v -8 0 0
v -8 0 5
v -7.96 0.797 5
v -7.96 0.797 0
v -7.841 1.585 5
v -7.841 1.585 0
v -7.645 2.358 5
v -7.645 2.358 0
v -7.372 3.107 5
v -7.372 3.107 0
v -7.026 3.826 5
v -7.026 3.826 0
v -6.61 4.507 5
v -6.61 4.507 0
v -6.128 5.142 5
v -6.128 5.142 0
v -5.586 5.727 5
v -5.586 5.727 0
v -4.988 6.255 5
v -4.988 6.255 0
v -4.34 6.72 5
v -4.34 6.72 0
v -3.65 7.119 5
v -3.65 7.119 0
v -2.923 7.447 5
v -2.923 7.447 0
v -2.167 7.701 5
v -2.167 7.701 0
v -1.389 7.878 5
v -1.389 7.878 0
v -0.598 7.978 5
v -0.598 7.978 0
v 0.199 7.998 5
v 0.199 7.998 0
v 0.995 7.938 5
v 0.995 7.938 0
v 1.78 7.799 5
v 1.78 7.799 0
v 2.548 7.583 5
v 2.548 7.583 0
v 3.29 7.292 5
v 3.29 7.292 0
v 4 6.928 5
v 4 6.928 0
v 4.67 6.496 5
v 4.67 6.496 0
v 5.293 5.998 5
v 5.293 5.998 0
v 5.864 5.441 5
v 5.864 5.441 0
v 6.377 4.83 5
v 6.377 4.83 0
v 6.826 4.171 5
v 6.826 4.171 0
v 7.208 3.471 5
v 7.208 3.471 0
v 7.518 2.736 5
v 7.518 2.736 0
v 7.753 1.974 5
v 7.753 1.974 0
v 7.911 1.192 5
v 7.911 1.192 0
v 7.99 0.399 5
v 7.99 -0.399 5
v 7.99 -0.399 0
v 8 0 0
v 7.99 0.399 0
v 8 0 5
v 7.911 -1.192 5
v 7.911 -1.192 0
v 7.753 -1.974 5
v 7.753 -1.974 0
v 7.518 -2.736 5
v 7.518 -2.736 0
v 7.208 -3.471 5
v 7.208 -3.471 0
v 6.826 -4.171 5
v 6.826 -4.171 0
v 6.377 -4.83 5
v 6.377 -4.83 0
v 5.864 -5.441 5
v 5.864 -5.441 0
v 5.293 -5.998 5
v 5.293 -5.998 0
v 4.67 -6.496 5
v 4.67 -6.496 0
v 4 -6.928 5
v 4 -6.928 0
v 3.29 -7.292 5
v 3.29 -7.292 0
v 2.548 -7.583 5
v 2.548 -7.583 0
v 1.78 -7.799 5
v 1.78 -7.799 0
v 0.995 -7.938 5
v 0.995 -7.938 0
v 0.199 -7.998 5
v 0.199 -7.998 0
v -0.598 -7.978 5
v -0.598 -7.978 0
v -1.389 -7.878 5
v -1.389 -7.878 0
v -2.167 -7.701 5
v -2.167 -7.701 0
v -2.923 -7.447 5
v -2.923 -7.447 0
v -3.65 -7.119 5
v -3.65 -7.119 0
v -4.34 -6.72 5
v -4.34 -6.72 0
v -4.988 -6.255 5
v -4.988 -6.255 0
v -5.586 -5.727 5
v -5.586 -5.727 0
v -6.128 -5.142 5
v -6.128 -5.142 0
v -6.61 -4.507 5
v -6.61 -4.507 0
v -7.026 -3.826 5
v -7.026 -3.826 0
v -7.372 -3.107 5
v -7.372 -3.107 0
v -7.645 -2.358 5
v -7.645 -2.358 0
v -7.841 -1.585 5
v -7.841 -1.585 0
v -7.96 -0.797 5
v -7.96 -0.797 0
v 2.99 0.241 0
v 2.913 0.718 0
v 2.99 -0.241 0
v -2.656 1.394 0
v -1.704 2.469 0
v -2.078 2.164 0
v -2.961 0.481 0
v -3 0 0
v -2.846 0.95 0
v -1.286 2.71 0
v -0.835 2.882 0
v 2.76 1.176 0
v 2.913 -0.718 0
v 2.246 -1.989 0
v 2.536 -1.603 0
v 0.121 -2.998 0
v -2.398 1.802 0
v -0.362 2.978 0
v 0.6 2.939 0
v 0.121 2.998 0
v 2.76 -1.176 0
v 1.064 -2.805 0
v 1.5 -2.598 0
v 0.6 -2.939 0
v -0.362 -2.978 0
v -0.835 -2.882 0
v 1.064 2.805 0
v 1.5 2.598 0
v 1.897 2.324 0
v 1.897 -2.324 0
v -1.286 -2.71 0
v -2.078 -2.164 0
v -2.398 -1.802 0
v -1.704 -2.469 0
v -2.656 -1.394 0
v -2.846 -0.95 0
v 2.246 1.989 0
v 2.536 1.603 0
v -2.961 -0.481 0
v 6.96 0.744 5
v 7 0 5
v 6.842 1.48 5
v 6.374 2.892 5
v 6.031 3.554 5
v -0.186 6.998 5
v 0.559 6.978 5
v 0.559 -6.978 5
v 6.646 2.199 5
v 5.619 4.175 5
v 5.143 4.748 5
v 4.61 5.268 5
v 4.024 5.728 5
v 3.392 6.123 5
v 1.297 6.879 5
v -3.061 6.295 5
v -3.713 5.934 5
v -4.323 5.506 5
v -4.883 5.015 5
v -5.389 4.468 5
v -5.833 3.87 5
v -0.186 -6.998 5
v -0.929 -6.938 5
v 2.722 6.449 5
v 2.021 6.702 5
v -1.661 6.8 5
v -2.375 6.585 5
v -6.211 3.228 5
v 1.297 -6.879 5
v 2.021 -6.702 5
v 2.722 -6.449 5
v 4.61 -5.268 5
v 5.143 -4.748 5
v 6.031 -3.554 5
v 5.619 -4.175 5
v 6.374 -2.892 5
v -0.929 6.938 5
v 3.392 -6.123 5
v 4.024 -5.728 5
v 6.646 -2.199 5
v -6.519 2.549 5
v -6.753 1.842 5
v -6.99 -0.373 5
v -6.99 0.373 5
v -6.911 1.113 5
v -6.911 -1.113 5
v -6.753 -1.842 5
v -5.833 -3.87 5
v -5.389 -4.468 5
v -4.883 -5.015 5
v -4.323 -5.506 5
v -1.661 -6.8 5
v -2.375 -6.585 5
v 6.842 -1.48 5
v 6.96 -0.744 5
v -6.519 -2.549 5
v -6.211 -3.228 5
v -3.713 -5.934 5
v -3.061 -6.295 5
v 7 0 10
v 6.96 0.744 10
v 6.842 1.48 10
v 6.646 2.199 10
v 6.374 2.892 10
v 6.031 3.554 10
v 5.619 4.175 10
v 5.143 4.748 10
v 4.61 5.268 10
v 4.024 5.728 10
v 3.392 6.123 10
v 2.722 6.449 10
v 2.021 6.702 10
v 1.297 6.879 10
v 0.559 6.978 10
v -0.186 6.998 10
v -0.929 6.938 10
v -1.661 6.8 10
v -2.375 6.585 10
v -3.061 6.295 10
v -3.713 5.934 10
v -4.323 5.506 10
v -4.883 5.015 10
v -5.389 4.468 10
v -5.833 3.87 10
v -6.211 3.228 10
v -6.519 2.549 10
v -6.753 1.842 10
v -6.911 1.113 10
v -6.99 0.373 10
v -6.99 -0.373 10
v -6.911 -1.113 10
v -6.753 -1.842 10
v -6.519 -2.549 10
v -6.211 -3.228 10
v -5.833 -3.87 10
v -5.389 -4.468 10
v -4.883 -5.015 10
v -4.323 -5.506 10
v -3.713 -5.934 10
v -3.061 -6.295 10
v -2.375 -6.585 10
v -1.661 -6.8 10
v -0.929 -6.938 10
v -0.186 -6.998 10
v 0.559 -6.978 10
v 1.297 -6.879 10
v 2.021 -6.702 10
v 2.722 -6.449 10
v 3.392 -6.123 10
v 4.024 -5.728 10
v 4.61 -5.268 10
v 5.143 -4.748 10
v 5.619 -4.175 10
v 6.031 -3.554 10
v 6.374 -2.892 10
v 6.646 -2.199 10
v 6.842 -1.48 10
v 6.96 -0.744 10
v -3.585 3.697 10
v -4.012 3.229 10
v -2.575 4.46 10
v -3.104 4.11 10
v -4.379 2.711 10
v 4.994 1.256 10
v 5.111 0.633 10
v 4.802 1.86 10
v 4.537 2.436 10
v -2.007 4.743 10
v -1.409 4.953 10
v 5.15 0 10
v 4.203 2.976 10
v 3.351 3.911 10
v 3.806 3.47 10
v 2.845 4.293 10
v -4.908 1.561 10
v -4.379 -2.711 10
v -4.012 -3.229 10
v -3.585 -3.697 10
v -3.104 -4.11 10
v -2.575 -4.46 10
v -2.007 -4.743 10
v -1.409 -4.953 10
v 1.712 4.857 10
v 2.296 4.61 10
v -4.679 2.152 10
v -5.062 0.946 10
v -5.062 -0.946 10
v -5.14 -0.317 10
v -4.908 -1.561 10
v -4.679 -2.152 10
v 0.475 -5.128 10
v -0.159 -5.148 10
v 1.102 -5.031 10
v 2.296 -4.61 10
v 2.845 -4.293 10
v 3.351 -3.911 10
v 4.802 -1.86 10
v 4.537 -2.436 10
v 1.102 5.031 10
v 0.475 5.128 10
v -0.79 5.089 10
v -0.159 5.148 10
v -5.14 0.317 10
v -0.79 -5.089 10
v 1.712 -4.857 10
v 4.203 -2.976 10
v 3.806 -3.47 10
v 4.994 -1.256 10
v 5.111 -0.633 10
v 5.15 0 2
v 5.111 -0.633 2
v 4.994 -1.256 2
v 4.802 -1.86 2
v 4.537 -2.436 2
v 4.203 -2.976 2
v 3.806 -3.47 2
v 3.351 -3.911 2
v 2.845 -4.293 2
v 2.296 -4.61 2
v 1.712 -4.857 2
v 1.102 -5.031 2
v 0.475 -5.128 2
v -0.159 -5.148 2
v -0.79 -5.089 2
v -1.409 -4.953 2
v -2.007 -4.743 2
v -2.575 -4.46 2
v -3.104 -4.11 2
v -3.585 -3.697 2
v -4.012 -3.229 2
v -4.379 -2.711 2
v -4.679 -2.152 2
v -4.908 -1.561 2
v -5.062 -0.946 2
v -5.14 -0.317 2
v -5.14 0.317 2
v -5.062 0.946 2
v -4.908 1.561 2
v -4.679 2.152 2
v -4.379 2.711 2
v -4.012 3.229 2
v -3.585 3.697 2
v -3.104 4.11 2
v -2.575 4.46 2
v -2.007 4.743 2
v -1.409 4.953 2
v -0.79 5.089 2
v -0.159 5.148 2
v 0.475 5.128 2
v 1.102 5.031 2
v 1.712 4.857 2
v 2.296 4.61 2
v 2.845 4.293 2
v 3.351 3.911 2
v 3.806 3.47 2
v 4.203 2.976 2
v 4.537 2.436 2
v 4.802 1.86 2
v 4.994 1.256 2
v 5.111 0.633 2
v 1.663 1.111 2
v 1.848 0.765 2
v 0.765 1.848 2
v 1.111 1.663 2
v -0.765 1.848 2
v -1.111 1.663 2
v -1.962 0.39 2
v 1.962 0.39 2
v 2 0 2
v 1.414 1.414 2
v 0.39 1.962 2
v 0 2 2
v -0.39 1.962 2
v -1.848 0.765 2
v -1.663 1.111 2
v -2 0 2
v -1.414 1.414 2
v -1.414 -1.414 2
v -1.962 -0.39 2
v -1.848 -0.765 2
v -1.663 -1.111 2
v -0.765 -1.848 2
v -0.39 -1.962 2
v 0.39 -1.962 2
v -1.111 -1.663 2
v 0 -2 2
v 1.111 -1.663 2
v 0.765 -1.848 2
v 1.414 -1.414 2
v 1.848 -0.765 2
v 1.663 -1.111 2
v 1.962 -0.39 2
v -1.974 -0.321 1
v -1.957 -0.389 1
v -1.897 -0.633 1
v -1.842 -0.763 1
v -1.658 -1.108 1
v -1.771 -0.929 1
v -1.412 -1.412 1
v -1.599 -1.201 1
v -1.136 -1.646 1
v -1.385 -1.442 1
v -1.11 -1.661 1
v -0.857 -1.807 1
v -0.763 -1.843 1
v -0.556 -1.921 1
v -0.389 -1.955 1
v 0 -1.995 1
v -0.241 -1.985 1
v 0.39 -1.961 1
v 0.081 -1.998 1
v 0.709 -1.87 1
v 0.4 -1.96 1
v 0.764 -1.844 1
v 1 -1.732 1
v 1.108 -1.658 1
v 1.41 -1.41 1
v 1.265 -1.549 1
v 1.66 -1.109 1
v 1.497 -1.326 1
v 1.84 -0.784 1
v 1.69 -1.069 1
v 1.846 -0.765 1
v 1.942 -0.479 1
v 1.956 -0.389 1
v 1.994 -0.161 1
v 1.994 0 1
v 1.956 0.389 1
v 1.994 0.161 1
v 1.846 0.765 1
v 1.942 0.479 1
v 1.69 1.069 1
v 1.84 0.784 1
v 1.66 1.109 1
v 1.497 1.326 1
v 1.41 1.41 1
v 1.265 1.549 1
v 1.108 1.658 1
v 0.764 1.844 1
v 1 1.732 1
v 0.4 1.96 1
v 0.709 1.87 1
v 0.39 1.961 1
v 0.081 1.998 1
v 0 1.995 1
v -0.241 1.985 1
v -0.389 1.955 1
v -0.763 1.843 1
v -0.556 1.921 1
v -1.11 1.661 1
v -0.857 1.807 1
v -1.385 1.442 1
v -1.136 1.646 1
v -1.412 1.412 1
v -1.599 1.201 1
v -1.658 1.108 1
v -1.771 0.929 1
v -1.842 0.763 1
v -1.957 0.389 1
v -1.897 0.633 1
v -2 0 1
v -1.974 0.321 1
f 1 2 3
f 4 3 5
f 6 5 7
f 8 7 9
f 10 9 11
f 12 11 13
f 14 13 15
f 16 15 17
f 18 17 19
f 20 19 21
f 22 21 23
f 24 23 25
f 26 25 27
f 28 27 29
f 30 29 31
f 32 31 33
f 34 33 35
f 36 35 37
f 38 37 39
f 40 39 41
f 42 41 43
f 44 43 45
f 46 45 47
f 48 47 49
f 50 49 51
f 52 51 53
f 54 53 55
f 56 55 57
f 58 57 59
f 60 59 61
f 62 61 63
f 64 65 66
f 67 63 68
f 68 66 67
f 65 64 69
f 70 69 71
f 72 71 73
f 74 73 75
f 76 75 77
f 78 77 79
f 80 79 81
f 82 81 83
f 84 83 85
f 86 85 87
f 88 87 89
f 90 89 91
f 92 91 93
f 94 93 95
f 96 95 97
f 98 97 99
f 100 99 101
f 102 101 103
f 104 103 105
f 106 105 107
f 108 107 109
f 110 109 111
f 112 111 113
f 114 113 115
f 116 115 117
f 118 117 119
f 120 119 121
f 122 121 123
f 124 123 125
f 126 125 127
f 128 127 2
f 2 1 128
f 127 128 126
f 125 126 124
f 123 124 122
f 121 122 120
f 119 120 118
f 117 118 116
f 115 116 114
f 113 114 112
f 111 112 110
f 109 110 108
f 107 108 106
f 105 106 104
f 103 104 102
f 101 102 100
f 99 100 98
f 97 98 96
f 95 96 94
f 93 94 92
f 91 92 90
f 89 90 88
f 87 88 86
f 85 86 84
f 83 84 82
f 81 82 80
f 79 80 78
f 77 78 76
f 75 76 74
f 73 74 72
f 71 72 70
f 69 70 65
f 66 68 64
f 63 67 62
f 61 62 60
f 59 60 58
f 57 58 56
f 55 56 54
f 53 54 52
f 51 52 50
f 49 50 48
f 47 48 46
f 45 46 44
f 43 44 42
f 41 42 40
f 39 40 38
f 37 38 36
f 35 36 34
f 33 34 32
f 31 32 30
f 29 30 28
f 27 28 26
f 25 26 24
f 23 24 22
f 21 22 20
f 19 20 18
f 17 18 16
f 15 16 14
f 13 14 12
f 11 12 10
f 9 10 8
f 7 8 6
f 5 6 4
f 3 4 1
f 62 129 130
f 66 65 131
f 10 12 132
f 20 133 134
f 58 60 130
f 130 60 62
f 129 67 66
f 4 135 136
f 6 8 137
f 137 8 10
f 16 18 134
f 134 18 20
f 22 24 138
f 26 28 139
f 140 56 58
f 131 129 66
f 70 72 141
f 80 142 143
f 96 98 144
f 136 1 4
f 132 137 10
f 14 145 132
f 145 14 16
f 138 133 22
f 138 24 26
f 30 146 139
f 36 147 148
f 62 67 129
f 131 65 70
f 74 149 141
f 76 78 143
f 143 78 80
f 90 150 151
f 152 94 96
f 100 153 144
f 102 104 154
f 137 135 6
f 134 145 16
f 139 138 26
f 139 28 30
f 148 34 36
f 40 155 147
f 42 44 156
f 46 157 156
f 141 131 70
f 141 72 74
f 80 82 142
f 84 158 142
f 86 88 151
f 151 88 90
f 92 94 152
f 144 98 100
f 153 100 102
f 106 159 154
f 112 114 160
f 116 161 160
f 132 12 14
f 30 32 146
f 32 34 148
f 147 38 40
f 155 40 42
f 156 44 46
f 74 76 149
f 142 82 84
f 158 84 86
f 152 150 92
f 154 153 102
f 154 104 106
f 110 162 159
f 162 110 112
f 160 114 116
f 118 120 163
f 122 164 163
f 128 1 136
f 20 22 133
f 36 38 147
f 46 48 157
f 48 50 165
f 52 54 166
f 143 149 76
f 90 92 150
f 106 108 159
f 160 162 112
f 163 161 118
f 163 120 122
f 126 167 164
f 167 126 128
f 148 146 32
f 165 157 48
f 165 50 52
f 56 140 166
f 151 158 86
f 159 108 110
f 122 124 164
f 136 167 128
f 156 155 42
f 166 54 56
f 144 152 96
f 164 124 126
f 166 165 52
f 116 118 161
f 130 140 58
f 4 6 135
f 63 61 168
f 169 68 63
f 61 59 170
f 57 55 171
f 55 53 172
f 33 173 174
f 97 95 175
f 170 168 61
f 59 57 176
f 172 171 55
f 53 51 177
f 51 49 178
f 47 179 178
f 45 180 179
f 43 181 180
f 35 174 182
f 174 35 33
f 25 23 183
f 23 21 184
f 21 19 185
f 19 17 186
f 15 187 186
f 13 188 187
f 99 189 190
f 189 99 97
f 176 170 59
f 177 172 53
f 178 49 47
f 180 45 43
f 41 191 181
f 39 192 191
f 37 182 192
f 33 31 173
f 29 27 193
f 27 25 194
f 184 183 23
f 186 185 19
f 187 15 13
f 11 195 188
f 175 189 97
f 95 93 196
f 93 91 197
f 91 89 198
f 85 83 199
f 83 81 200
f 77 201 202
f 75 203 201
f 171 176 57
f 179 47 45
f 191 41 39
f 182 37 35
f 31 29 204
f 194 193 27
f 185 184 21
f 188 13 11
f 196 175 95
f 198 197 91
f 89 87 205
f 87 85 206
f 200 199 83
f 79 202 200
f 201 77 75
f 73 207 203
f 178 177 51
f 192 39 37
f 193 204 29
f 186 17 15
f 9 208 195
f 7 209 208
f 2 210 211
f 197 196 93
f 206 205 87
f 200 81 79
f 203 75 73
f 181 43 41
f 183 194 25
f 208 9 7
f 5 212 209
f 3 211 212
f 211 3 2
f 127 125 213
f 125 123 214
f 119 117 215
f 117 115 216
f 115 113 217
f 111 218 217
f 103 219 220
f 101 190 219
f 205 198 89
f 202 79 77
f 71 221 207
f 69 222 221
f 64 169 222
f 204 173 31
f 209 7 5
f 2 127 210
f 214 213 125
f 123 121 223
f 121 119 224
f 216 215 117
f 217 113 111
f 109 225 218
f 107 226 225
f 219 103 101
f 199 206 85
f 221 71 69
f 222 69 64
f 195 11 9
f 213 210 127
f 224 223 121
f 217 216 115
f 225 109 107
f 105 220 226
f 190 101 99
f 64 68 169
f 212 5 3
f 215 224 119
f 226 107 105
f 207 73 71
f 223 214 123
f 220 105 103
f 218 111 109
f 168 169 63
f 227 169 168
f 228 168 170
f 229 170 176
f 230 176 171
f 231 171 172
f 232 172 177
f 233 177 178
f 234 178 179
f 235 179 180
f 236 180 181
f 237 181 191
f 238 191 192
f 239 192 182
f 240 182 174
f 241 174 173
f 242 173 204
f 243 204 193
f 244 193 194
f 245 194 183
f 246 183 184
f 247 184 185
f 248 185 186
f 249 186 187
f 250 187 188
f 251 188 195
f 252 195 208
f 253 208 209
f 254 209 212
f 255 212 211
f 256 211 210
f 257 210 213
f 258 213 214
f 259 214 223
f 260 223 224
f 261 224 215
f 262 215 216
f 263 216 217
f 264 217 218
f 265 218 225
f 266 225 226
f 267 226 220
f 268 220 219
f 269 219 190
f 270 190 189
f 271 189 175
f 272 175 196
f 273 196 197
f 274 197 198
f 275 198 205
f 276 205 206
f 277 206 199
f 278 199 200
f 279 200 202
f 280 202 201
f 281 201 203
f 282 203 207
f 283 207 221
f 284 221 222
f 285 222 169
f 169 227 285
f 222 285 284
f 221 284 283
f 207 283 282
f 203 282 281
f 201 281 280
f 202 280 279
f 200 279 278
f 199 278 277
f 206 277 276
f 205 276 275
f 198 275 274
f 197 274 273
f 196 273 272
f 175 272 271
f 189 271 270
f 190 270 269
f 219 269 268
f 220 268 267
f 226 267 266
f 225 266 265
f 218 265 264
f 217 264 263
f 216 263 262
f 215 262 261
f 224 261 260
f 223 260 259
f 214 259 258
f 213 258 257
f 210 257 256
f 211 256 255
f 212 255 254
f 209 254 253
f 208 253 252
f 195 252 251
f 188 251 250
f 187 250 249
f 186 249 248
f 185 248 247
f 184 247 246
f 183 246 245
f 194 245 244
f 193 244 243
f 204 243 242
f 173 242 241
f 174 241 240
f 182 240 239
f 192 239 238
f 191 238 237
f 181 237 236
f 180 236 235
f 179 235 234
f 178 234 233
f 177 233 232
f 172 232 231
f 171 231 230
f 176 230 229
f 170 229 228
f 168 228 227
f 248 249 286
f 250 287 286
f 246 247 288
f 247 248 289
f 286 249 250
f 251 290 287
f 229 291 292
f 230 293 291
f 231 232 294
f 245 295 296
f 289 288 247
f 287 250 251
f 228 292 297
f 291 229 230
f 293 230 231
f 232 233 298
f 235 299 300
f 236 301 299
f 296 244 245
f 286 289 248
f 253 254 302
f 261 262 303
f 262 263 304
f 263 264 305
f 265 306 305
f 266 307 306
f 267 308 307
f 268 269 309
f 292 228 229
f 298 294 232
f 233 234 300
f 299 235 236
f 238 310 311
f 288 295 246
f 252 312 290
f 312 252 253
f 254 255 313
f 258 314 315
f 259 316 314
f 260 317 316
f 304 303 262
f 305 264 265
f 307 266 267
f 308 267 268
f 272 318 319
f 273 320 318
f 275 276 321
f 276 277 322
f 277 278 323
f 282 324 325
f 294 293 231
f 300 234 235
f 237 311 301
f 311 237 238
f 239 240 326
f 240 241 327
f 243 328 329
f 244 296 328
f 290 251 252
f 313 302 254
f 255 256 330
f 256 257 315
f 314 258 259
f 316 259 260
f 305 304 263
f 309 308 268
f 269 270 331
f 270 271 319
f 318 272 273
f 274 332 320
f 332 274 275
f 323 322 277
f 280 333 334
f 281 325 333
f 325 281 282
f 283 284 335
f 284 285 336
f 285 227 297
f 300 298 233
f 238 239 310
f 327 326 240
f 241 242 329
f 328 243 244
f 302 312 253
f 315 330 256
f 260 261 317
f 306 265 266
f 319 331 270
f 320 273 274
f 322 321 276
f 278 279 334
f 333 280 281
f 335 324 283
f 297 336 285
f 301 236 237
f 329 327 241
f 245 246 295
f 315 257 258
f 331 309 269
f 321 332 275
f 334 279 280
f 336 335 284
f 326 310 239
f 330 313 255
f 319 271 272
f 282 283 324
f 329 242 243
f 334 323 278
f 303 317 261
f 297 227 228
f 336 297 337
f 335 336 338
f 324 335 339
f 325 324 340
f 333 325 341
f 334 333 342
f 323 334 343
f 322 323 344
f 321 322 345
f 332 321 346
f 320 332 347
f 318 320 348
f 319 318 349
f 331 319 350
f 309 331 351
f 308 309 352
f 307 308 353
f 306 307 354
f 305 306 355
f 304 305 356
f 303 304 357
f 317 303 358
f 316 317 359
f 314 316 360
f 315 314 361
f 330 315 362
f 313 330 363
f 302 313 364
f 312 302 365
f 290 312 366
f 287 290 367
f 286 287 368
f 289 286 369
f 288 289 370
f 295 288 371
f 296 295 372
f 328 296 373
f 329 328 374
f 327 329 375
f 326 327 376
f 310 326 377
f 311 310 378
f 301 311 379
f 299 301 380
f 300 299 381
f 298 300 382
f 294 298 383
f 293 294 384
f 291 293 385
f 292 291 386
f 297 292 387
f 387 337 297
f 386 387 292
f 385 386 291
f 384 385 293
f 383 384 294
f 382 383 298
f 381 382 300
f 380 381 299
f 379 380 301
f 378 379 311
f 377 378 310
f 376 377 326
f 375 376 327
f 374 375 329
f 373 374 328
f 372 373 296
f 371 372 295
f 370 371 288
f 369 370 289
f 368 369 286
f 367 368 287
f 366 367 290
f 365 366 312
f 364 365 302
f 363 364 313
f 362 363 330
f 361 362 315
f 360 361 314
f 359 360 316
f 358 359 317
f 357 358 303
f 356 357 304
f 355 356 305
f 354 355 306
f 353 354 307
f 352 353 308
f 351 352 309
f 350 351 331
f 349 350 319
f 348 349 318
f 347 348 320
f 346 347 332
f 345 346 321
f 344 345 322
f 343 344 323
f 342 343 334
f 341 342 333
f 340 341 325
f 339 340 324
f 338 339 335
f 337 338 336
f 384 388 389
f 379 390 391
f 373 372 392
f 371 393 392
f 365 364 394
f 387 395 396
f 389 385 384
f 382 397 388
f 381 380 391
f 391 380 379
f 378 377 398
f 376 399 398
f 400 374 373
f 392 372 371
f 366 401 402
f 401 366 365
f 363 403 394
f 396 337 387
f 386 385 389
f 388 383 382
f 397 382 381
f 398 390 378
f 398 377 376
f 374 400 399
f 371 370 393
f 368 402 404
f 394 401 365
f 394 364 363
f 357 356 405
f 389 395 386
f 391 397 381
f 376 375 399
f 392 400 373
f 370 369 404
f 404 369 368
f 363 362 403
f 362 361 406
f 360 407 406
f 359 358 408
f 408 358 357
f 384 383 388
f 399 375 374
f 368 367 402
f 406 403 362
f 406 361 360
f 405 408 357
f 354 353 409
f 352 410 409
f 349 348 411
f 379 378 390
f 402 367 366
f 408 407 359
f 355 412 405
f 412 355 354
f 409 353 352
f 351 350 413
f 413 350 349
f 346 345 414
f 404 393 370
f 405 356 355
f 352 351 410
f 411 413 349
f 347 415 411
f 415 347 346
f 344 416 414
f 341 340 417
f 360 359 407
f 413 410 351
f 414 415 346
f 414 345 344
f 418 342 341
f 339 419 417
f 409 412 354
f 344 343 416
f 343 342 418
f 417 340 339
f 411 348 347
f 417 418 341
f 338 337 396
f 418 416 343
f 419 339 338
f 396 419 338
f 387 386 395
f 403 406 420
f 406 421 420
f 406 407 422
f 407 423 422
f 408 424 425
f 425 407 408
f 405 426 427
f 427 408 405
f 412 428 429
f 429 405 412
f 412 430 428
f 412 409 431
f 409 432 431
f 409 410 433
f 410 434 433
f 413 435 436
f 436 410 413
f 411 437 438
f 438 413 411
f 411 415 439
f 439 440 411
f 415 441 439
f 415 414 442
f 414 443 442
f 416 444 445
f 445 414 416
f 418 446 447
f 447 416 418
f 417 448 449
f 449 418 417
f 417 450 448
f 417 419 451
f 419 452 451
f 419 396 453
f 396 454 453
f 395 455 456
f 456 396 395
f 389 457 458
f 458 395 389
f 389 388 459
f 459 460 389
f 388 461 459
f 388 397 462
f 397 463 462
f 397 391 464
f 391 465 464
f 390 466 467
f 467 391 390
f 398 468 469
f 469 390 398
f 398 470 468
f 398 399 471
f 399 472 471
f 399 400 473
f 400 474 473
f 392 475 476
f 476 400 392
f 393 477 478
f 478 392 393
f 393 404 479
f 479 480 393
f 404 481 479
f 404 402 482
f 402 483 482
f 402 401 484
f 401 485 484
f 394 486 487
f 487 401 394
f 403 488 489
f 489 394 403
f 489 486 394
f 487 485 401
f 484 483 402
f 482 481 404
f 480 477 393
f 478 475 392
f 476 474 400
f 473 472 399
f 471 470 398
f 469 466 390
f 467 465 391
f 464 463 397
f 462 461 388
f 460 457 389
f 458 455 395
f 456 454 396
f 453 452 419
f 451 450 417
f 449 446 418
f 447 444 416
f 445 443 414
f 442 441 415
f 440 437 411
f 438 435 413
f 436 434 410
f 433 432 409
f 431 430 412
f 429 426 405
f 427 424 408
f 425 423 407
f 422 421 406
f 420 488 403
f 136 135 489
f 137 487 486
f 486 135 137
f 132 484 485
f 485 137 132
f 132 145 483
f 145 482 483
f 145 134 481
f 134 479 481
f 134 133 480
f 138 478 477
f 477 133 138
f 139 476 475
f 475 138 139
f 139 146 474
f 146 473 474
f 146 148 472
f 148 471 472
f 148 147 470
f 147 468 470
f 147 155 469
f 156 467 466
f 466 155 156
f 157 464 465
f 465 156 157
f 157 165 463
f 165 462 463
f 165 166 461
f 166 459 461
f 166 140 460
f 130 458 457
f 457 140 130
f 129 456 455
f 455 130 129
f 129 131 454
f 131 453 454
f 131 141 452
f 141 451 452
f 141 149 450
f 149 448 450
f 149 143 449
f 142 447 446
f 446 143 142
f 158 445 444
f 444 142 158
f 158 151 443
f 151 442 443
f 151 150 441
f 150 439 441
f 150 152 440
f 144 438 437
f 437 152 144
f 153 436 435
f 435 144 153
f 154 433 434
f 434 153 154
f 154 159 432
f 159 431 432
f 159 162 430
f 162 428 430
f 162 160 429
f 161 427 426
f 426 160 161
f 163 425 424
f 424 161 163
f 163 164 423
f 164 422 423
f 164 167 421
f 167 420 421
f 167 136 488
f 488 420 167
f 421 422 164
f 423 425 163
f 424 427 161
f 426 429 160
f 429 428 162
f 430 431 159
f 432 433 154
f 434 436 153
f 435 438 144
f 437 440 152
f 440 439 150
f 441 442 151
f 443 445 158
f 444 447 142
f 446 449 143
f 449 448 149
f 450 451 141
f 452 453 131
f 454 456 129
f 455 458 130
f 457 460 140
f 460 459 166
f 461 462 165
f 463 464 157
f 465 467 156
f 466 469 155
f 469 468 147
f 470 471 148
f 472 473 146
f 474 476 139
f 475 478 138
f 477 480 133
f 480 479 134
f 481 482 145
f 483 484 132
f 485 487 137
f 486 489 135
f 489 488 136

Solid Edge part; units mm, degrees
sketch "Sketch1" plane through (0, 0, 0) normal (0, 0, 1) x (1, 0, 0)
  circle A0 centre (0, 0) radius 8
  circle A1 centre (0, 0) radius 2
extrude "Protrusion1" add sketch "Sketch1" along normal blind 10
sketch "Sketch2" plane through (0, 0, 10) normal (0, 0, 1) x (1, 0, 0)
  circle A0 centre (0, 0) radius 5.15
  dimension "D1" = 10.3
extrude "VaciadoExtruido_1" cut sketch "Sketch2" against normal blind 8
sketch "Sketch3" plane through (0, 0, 10) normal (0, 0, 1) x (1, 0, 0)
  circle A0 centre (0, 0) radius 7
extrude "VaciadoExtruido_2" cut sketch "Sketch3" against normal blind 5 flip side to cut
chamfer "Chaflán_1" distance 1 angle 45 1 edges at (-2, 0, 0)
